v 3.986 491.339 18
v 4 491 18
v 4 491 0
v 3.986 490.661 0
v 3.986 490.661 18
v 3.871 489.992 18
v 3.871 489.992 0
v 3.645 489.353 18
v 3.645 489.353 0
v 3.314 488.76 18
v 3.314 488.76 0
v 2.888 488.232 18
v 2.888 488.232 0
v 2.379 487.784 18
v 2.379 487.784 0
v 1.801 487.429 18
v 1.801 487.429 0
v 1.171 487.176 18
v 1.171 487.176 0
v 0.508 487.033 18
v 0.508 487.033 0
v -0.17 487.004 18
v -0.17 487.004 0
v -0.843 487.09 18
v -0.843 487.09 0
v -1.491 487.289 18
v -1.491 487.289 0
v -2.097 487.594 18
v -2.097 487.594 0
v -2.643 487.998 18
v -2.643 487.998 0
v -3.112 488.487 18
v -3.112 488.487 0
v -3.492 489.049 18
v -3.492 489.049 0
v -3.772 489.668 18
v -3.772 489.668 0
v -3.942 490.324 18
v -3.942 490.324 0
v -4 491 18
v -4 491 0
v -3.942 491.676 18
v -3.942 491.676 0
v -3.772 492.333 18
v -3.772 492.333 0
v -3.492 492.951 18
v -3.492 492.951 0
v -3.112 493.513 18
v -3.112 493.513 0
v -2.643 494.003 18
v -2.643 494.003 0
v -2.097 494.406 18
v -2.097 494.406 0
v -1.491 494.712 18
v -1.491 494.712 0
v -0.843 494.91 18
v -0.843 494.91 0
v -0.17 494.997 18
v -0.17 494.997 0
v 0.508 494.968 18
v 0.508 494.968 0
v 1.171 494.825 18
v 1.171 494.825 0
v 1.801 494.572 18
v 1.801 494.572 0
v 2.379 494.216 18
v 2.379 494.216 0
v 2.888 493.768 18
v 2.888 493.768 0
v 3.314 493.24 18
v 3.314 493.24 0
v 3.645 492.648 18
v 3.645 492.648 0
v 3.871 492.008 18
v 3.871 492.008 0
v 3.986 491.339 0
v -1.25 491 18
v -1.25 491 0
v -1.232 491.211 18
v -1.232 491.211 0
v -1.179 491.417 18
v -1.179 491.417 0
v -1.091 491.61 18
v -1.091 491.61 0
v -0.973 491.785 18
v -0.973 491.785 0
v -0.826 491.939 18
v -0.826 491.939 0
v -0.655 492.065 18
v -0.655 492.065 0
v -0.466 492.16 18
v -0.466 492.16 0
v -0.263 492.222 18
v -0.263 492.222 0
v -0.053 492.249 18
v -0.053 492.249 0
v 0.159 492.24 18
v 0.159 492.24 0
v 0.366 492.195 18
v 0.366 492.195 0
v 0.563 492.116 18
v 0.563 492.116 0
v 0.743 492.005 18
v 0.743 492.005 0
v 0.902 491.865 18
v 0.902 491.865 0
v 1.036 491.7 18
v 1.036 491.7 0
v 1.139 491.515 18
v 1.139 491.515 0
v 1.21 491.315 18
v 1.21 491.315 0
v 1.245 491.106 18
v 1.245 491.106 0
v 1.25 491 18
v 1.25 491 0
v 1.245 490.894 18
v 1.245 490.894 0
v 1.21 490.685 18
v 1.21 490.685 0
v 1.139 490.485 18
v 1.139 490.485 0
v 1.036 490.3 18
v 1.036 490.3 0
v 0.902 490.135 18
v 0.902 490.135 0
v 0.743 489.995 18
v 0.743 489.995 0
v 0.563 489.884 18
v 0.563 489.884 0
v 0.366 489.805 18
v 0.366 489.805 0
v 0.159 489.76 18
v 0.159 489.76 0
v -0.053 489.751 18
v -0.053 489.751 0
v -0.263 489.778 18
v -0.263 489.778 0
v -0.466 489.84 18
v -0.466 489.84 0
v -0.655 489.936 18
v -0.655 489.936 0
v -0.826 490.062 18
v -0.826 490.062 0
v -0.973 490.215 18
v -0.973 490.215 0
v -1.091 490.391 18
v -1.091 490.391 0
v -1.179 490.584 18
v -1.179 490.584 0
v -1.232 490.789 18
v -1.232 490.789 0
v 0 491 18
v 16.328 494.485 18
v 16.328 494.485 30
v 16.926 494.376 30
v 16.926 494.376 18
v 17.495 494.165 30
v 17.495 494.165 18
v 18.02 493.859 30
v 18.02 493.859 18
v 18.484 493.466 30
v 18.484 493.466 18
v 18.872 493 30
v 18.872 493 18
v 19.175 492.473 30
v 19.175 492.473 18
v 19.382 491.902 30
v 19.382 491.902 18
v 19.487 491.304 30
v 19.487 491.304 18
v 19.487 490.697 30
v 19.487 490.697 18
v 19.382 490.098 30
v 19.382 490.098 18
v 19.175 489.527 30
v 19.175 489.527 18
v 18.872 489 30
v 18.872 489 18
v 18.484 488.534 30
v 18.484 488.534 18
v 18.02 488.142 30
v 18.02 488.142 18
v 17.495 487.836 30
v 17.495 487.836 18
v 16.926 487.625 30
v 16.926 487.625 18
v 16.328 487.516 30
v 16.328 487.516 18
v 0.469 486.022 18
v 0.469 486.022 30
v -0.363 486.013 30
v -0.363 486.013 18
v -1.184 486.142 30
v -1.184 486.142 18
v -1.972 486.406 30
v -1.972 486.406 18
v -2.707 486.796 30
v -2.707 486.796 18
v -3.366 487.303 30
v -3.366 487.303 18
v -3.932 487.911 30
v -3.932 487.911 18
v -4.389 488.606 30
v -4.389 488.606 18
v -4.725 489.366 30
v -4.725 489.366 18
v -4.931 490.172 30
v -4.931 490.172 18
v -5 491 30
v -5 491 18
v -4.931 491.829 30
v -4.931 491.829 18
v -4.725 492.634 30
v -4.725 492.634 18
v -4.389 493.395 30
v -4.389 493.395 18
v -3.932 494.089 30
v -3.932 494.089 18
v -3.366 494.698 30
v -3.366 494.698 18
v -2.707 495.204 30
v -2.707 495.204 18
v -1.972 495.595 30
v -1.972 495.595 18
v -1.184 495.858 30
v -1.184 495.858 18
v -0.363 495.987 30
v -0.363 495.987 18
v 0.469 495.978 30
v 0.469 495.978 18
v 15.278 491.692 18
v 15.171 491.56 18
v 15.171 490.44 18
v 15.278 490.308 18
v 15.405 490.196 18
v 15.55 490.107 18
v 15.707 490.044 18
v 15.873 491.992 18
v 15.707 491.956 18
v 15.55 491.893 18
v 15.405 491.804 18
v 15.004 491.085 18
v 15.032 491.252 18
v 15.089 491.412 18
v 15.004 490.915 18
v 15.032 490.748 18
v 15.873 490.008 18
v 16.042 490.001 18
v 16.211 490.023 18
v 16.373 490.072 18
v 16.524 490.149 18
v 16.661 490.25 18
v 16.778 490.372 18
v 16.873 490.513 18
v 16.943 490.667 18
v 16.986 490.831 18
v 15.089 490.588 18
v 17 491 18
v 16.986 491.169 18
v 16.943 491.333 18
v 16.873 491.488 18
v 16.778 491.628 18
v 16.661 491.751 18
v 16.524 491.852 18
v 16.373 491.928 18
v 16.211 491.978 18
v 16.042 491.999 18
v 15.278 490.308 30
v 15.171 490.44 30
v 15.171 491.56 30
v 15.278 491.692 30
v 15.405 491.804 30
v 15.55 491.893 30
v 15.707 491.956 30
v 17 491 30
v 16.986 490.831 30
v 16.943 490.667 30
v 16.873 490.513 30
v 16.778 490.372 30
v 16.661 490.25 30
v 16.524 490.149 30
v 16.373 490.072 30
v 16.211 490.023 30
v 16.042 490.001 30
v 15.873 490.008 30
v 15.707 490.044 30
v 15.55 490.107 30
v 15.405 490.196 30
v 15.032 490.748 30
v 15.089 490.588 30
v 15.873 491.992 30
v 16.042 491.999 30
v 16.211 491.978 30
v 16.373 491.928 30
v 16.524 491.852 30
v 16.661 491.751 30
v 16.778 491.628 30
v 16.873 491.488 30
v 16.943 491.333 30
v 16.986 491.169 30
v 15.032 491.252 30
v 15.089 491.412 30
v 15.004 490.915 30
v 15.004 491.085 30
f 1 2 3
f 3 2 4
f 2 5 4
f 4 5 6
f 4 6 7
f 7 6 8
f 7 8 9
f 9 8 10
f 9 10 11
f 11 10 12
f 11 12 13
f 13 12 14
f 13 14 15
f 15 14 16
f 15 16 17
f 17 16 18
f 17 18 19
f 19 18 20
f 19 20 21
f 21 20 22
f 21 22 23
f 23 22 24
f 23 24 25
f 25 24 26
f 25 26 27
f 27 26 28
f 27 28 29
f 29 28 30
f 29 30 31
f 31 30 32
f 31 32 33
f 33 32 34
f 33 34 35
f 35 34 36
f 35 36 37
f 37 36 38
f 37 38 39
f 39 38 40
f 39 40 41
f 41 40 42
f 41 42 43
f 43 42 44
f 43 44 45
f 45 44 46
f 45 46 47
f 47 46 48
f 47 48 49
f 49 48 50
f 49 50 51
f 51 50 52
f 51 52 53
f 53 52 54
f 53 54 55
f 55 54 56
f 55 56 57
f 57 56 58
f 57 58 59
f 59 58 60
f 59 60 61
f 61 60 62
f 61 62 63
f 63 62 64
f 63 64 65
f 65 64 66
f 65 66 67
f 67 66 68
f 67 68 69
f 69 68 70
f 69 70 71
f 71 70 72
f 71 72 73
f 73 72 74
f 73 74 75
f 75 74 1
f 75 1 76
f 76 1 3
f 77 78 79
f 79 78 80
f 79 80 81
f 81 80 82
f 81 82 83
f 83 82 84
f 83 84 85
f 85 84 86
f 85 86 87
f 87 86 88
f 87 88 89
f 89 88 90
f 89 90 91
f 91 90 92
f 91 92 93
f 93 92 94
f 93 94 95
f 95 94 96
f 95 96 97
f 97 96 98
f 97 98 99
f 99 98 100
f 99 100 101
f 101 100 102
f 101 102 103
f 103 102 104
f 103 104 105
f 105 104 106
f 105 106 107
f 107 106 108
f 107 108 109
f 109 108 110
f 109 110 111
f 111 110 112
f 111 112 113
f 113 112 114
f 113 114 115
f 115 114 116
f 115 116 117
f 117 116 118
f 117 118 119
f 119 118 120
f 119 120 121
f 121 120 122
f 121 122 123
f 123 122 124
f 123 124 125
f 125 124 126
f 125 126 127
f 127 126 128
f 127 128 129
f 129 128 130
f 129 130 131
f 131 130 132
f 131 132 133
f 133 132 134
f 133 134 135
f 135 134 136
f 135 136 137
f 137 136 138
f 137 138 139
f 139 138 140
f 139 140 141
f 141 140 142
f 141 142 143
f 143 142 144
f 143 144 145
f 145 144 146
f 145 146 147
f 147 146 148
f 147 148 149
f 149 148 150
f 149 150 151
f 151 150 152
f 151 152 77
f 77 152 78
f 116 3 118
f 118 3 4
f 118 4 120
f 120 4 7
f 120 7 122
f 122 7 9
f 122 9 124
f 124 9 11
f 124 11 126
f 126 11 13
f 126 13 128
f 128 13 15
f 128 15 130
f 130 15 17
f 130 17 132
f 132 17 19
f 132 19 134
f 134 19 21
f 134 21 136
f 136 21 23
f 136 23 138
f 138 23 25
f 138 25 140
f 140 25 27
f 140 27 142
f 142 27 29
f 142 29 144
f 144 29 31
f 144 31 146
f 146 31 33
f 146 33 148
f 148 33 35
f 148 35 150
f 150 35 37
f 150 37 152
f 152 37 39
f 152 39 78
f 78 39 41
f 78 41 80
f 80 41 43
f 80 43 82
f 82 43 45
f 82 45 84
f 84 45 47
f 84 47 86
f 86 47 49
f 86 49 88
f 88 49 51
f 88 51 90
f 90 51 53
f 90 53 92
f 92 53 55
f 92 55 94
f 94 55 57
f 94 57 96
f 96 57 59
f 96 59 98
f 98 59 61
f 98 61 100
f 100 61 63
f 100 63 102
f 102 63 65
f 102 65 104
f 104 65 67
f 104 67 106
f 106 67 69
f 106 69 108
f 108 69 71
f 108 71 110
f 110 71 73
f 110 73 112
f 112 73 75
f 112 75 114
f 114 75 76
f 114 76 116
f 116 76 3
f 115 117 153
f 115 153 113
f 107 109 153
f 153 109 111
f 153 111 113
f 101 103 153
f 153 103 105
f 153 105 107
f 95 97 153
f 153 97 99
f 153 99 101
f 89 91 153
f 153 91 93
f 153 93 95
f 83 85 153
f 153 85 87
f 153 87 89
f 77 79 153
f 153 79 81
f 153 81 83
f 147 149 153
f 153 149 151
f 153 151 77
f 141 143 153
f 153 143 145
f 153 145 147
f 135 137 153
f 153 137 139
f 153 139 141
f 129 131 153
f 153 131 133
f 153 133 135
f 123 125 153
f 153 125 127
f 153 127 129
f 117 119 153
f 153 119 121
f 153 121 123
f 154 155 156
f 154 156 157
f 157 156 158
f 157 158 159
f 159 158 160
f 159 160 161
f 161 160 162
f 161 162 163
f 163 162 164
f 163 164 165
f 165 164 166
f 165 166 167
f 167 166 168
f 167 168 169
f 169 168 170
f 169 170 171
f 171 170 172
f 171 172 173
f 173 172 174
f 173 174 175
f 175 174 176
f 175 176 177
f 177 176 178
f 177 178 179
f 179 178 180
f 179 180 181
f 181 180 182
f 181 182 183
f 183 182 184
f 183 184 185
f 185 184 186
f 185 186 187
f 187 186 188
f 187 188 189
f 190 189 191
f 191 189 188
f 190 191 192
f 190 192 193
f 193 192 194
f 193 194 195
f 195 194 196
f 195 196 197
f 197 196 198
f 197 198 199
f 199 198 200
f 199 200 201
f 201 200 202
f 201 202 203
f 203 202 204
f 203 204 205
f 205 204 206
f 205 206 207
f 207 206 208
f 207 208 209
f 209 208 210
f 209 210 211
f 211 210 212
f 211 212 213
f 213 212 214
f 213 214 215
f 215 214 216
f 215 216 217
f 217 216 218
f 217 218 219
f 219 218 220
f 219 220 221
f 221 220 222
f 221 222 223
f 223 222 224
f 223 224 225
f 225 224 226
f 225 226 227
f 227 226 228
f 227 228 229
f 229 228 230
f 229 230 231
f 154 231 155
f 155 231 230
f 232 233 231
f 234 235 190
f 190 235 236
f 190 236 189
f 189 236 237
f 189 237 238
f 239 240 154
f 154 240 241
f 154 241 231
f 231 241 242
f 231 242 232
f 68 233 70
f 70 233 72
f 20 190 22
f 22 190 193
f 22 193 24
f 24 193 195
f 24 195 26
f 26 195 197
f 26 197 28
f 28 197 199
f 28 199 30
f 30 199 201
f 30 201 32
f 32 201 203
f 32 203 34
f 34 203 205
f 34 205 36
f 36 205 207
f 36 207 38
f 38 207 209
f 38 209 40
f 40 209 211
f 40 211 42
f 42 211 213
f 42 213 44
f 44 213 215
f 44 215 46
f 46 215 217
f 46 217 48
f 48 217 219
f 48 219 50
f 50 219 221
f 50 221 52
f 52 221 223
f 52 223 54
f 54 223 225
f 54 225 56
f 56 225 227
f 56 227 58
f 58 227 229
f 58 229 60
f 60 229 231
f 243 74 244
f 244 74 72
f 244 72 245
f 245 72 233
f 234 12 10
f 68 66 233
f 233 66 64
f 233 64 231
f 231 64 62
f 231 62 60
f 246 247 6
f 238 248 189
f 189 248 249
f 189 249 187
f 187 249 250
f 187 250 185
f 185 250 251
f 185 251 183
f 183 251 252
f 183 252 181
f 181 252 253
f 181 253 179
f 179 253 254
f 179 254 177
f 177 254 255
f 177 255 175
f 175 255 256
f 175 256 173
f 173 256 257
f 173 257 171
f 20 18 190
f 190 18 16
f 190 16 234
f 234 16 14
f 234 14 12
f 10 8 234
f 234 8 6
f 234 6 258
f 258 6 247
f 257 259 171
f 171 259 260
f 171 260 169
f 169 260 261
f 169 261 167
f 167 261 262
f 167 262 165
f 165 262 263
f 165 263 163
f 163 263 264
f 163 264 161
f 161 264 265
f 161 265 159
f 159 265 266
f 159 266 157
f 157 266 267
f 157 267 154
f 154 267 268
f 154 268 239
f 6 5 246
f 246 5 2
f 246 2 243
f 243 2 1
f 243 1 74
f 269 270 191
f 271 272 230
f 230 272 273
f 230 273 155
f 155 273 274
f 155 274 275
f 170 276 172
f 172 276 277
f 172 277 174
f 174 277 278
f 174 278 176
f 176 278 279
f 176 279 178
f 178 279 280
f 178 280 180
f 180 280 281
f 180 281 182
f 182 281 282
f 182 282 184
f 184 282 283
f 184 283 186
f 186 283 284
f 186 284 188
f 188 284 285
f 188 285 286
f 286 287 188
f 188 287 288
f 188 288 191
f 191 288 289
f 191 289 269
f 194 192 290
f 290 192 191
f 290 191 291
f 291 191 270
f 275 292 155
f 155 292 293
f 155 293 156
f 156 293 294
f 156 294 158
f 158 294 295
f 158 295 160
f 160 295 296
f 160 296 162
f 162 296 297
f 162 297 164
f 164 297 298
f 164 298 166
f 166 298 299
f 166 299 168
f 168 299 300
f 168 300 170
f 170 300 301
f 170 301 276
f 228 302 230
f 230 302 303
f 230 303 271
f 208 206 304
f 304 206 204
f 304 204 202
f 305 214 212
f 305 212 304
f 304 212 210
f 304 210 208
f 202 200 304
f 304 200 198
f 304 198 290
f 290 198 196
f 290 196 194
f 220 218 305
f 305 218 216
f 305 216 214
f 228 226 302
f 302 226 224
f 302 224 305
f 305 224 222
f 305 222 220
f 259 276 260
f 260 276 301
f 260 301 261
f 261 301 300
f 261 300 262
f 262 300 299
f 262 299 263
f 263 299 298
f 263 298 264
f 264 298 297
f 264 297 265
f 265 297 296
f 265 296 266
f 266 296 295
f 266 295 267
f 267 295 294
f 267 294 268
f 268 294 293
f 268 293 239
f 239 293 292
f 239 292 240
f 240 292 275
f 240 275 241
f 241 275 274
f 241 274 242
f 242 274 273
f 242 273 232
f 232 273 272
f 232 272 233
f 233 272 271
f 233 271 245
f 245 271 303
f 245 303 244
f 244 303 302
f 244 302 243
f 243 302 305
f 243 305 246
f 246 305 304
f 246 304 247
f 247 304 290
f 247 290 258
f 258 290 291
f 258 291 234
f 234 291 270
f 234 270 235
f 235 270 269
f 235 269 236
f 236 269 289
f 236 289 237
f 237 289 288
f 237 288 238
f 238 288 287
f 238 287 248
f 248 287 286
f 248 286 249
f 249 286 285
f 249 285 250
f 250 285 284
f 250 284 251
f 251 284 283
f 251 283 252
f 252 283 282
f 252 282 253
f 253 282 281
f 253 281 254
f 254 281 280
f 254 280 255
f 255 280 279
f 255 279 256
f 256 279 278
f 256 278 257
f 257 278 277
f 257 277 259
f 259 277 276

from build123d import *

# Parameters (mm, degrees)
SKETCH1_R           = 4
SKETCH1_R_2         = 1.25
BOSS_EXTRUDE1_DEPTH = 30
BOSS_EXTRUDE2_DEPTH = 12
SKETCH3_R           = 1
CUT_EXTRUDE1_DEPTH  = 12


with BuildPart() as part:
    # Sketch1 → Boss-Extrude1 (new body)
    with BuildSketch(Plane.XY):
        with Locations((0, 491.000207075)):
            Circle(SKETCH1_R)
        with Locations((0, 491.000207075)):
            Circle(SKETCH1_R_2, mode=Mode.SUBTRACT)
    extrude(amount=BOSS_EXTRUDE1_DEPTH)

    # Sketch2 → Boss-Extrude2 (add)
    with BuildSketch(Plane.XY.offset(30)):
        with BuildLine():
            Line((0.46875, 495.978185926), (16.328125, 494.484792271))
            ThreePointArc((16.328125, 494.484792271), (19.5, 491.000207075), (16.328125, 487.51562188))
            Line((16.328125, 487.51562188), (0.46875, 486.022228224))
            ThreePointArc((0.46875, 486.022228224), (-5, 491.000207075), (0.46875, 495.978185926))
        make_face()
    extrude(amount=-BOSS_EXTRUDE2_DEPTH)

    # Sketch3 → Cut-Extrude1 (cut)
    with BuildSketch(Plane.XY.offset(30)):
        with Locations((16, 491.000207075)):
            Circle(SKETCH3_R)
    extrude(amount=-CUT_EXTRUDE1_DEPTH, mode=Mode.SUBTRACT)


solid = part.part
